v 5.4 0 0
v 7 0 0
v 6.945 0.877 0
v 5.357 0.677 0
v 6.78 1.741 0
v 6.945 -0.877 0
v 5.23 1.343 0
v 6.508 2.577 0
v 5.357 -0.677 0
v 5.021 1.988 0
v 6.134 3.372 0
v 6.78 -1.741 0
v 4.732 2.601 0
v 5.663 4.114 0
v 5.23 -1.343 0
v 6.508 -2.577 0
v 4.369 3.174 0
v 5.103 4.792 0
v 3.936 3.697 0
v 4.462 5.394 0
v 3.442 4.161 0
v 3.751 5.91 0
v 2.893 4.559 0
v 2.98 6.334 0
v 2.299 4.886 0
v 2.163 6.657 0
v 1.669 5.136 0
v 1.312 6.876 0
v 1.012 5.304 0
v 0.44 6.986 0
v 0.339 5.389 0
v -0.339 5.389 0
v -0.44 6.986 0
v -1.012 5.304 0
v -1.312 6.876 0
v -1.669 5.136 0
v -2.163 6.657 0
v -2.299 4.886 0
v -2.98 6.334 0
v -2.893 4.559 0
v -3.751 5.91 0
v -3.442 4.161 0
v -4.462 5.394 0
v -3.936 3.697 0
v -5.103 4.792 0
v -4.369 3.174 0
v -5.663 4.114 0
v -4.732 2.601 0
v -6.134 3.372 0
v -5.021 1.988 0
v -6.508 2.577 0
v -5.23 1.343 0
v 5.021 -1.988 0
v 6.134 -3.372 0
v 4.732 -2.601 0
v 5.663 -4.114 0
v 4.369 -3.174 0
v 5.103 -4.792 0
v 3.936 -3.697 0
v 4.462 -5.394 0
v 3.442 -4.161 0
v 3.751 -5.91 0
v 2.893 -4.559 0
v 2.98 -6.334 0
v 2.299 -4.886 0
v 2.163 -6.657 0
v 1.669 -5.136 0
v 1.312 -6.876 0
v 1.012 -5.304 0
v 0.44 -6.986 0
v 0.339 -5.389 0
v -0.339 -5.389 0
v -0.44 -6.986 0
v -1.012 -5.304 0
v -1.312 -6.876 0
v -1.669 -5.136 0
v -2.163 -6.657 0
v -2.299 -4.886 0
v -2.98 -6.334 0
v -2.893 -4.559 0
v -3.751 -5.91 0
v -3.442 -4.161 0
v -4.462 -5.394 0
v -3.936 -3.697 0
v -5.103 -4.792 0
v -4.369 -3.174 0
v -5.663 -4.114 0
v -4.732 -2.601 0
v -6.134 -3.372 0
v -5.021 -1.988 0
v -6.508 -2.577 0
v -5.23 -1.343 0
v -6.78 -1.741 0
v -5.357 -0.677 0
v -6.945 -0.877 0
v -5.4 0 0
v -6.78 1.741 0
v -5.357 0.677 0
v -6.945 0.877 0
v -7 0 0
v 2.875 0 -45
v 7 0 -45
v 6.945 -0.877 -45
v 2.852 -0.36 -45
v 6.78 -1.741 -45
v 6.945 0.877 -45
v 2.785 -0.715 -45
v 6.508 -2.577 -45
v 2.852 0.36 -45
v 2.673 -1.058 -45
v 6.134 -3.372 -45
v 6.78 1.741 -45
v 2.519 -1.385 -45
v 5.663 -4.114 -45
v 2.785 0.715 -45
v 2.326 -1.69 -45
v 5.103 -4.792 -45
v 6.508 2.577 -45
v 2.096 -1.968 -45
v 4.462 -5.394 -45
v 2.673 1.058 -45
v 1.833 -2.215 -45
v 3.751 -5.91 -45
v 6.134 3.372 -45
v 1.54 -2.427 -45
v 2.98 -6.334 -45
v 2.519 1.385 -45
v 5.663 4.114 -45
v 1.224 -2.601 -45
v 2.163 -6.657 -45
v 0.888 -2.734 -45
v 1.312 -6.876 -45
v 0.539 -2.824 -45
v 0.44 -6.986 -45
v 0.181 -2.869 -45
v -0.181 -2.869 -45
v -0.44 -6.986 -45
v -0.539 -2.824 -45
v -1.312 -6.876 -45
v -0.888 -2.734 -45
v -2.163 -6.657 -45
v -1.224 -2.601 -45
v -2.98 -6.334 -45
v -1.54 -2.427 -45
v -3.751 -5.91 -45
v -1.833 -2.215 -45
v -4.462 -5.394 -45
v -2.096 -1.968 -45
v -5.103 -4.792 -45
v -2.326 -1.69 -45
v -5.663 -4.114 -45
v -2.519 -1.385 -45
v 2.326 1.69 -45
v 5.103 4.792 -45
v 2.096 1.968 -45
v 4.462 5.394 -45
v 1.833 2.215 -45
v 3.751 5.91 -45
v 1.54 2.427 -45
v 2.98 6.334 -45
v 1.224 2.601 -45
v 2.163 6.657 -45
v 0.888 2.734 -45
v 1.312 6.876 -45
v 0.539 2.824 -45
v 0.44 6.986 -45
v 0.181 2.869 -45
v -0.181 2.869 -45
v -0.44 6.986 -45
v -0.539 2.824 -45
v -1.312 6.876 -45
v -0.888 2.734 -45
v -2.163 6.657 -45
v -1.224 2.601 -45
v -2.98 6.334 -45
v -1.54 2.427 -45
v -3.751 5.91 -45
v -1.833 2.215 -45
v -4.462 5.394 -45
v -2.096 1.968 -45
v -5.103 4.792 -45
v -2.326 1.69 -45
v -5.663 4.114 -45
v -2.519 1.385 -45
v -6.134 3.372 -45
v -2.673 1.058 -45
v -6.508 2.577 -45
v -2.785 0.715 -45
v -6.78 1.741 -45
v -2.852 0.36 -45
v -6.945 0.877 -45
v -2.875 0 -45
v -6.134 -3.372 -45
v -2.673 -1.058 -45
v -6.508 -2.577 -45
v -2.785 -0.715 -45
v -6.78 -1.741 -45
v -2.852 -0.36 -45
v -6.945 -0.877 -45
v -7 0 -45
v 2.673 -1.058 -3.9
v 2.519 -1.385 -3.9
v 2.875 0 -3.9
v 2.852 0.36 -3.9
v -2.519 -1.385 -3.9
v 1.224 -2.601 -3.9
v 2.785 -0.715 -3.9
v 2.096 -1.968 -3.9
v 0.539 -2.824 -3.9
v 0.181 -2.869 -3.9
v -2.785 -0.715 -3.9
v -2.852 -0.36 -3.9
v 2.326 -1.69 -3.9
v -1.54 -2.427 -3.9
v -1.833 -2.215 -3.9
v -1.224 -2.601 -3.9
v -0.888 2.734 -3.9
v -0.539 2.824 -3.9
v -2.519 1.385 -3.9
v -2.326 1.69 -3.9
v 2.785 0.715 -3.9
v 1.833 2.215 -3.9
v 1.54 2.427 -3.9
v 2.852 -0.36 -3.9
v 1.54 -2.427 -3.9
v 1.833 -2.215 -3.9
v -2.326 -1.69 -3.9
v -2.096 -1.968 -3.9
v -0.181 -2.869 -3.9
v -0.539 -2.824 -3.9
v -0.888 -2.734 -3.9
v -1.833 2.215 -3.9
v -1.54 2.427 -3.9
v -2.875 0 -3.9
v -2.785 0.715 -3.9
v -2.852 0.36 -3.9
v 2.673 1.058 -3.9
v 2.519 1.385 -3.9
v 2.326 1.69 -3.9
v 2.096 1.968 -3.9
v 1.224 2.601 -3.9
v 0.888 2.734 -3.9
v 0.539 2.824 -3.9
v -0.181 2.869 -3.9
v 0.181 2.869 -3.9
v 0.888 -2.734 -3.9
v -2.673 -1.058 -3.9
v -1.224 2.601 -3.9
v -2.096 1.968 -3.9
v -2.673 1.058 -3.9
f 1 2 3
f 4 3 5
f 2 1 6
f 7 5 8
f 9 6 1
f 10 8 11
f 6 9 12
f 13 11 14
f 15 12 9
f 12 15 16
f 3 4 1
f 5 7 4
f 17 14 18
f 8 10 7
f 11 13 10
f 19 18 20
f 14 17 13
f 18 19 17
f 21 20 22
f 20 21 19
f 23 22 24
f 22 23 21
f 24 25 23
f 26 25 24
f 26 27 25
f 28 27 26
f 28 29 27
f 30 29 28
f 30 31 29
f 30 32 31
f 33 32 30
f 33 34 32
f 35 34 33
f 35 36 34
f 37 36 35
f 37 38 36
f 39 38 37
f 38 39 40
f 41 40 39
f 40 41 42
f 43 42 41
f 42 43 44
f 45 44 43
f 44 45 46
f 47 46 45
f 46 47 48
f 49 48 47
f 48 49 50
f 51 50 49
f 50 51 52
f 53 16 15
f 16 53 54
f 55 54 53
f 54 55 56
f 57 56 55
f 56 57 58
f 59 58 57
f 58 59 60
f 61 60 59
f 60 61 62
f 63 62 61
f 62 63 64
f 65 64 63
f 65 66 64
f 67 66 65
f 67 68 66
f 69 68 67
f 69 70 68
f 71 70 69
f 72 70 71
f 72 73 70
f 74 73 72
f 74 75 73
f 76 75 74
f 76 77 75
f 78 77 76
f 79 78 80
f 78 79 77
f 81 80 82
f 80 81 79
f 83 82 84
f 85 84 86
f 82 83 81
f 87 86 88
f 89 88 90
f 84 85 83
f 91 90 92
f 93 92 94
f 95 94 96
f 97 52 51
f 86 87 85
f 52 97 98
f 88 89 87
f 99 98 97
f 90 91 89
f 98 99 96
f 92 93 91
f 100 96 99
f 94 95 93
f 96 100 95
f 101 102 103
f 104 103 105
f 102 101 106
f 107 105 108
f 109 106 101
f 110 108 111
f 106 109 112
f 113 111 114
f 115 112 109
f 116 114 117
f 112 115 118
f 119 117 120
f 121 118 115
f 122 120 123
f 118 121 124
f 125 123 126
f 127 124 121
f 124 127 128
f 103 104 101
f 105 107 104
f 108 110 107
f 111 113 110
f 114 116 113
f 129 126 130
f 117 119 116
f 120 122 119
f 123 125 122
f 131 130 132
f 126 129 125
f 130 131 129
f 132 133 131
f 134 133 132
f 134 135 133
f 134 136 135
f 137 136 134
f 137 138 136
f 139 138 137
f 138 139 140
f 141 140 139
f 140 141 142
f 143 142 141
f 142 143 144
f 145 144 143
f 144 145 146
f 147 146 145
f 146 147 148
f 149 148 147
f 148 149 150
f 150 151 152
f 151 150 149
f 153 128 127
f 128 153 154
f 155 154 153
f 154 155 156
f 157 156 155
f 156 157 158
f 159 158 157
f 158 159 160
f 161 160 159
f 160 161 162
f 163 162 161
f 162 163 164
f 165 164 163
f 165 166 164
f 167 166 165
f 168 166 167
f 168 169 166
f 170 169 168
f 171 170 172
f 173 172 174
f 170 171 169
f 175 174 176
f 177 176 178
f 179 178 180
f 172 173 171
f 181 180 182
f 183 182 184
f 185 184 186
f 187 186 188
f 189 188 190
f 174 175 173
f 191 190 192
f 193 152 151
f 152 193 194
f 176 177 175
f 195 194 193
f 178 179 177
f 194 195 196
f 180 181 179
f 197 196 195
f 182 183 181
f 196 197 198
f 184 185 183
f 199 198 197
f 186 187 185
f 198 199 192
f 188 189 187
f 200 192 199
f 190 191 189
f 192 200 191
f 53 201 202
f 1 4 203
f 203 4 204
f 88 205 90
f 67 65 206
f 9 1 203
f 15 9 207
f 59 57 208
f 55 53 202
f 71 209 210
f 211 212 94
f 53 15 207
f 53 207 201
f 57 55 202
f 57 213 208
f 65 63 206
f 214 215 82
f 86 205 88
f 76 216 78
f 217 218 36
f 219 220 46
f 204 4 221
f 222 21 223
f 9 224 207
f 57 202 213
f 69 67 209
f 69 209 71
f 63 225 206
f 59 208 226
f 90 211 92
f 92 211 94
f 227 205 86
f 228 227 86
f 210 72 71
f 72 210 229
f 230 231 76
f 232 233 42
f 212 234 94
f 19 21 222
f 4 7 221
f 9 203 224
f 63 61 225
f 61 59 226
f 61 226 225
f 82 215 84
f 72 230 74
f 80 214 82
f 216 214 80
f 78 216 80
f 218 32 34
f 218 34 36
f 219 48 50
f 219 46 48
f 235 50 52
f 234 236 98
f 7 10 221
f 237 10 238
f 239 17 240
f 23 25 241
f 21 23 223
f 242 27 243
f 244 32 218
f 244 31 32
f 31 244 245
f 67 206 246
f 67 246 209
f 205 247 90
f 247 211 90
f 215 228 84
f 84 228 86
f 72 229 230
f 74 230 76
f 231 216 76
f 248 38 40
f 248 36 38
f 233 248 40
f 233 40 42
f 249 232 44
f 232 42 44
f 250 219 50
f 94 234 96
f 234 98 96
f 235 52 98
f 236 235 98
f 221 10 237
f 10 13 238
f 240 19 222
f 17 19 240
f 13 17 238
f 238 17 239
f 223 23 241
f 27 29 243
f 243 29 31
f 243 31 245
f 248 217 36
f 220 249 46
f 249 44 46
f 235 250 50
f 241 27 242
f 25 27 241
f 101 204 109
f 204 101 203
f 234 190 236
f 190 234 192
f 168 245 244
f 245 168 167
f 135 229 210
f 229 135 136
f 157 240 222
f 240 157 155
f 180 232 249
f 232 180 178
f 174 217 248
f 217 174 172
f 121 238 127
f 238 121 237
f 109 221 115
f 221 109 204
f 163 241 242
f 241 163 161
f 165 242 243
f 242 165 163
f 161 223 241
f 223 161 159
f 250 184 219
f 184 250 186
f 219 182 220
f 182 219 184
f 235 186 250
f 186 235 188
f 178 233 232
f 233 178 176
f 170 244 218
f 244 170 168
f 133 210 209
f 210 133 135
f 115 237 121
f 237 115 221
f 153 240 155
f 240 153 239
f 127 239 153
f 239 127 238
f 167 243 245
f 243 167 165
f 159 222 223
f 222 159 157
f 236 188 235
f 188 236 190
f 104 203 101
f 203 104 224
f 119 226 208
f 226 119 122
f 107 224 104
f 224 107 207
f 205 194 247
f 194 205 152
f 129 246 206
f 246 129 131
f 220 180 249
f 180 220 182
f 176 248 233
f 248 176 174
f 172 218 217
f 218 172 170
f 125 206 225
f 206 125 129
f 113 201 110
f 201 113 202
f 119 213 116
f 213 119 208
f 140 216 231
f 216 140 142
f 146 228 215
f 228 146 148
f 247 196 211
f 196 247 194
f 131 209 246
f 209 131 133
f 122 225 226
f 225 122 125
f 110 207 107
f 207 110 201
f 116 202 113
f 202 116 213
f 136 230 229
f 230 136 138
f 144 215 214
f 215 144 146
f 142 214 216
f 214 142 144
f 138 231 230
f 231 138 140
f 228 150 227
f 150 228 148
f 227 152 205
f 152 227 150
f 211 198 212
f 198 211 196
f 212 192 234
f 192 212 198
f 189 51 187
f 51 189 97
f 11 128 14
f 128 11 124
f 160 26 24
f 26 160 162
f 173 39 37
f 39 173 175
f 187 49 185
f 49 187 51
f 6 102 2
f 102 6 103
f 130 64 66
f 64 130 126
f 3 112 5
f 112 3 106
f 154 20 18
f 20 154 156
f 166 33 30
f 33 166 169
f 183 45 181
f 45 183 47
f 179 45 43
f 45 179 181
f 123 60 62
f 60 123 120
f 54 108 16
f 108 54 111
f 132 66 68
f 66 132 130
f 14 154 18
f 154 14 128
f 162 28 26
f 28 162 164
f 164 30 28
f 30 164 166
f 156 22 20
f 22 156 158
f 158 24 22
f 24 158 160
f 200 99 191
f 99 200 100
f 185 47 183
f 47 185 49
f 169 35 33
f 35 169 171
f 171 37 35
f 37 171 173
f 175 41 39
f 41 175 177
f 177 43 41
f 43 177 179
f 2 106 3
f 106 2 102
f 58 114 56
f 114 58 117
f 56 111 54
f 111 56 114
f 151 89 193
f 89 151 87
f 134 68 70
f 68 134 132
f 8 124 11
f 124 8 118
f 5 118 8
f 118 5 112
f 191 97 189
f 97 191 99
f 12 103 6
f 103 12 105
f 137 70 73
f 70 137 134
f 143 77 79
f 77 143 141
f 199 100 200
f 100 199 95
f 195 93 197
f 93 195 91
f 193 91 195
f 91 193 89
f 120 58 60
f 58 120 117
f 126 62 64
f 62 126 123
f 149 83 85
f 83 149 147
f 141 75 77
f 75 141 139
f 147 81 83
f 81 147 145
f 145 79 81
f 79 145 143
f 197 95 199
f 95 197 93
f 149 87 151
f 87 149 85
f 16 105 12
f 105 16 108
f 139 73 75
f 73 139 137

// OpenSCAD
$fn = 50;


difference() {
	union() {
		translate(v = [0, 0, -45.0000000000]) {
			cylinder(h = 45, r = 7.0000000000);
		}
	}
	union() {
		translate(v = [0, 0, 0]) {
			rotate(a = [0, 0, 0]) {
				difference() {
					union() {
						#translate(v = [0, 0, -45.0000000000]) {
							cylinder(h = 45, r = 2.6000000000);
						}
						#translate(v = [0, 0, -3.9000000000]) {
							cylinder(h = 3.9000000000, r = 7.0000000000, r1 = 2.8750000000, r2 = 5.4000000000);
						}
						#translate(v = [0, 0, -45.0000000000]) {
							cylinder(h = 45, r = 2.8750000000);
						}
						#translate(v = [0, 0, -45.0000000000]) {
							cylinder(h = 45, r = 2.6000000000);
						}
					}
					union();
				}
			}
		}
	}
}
